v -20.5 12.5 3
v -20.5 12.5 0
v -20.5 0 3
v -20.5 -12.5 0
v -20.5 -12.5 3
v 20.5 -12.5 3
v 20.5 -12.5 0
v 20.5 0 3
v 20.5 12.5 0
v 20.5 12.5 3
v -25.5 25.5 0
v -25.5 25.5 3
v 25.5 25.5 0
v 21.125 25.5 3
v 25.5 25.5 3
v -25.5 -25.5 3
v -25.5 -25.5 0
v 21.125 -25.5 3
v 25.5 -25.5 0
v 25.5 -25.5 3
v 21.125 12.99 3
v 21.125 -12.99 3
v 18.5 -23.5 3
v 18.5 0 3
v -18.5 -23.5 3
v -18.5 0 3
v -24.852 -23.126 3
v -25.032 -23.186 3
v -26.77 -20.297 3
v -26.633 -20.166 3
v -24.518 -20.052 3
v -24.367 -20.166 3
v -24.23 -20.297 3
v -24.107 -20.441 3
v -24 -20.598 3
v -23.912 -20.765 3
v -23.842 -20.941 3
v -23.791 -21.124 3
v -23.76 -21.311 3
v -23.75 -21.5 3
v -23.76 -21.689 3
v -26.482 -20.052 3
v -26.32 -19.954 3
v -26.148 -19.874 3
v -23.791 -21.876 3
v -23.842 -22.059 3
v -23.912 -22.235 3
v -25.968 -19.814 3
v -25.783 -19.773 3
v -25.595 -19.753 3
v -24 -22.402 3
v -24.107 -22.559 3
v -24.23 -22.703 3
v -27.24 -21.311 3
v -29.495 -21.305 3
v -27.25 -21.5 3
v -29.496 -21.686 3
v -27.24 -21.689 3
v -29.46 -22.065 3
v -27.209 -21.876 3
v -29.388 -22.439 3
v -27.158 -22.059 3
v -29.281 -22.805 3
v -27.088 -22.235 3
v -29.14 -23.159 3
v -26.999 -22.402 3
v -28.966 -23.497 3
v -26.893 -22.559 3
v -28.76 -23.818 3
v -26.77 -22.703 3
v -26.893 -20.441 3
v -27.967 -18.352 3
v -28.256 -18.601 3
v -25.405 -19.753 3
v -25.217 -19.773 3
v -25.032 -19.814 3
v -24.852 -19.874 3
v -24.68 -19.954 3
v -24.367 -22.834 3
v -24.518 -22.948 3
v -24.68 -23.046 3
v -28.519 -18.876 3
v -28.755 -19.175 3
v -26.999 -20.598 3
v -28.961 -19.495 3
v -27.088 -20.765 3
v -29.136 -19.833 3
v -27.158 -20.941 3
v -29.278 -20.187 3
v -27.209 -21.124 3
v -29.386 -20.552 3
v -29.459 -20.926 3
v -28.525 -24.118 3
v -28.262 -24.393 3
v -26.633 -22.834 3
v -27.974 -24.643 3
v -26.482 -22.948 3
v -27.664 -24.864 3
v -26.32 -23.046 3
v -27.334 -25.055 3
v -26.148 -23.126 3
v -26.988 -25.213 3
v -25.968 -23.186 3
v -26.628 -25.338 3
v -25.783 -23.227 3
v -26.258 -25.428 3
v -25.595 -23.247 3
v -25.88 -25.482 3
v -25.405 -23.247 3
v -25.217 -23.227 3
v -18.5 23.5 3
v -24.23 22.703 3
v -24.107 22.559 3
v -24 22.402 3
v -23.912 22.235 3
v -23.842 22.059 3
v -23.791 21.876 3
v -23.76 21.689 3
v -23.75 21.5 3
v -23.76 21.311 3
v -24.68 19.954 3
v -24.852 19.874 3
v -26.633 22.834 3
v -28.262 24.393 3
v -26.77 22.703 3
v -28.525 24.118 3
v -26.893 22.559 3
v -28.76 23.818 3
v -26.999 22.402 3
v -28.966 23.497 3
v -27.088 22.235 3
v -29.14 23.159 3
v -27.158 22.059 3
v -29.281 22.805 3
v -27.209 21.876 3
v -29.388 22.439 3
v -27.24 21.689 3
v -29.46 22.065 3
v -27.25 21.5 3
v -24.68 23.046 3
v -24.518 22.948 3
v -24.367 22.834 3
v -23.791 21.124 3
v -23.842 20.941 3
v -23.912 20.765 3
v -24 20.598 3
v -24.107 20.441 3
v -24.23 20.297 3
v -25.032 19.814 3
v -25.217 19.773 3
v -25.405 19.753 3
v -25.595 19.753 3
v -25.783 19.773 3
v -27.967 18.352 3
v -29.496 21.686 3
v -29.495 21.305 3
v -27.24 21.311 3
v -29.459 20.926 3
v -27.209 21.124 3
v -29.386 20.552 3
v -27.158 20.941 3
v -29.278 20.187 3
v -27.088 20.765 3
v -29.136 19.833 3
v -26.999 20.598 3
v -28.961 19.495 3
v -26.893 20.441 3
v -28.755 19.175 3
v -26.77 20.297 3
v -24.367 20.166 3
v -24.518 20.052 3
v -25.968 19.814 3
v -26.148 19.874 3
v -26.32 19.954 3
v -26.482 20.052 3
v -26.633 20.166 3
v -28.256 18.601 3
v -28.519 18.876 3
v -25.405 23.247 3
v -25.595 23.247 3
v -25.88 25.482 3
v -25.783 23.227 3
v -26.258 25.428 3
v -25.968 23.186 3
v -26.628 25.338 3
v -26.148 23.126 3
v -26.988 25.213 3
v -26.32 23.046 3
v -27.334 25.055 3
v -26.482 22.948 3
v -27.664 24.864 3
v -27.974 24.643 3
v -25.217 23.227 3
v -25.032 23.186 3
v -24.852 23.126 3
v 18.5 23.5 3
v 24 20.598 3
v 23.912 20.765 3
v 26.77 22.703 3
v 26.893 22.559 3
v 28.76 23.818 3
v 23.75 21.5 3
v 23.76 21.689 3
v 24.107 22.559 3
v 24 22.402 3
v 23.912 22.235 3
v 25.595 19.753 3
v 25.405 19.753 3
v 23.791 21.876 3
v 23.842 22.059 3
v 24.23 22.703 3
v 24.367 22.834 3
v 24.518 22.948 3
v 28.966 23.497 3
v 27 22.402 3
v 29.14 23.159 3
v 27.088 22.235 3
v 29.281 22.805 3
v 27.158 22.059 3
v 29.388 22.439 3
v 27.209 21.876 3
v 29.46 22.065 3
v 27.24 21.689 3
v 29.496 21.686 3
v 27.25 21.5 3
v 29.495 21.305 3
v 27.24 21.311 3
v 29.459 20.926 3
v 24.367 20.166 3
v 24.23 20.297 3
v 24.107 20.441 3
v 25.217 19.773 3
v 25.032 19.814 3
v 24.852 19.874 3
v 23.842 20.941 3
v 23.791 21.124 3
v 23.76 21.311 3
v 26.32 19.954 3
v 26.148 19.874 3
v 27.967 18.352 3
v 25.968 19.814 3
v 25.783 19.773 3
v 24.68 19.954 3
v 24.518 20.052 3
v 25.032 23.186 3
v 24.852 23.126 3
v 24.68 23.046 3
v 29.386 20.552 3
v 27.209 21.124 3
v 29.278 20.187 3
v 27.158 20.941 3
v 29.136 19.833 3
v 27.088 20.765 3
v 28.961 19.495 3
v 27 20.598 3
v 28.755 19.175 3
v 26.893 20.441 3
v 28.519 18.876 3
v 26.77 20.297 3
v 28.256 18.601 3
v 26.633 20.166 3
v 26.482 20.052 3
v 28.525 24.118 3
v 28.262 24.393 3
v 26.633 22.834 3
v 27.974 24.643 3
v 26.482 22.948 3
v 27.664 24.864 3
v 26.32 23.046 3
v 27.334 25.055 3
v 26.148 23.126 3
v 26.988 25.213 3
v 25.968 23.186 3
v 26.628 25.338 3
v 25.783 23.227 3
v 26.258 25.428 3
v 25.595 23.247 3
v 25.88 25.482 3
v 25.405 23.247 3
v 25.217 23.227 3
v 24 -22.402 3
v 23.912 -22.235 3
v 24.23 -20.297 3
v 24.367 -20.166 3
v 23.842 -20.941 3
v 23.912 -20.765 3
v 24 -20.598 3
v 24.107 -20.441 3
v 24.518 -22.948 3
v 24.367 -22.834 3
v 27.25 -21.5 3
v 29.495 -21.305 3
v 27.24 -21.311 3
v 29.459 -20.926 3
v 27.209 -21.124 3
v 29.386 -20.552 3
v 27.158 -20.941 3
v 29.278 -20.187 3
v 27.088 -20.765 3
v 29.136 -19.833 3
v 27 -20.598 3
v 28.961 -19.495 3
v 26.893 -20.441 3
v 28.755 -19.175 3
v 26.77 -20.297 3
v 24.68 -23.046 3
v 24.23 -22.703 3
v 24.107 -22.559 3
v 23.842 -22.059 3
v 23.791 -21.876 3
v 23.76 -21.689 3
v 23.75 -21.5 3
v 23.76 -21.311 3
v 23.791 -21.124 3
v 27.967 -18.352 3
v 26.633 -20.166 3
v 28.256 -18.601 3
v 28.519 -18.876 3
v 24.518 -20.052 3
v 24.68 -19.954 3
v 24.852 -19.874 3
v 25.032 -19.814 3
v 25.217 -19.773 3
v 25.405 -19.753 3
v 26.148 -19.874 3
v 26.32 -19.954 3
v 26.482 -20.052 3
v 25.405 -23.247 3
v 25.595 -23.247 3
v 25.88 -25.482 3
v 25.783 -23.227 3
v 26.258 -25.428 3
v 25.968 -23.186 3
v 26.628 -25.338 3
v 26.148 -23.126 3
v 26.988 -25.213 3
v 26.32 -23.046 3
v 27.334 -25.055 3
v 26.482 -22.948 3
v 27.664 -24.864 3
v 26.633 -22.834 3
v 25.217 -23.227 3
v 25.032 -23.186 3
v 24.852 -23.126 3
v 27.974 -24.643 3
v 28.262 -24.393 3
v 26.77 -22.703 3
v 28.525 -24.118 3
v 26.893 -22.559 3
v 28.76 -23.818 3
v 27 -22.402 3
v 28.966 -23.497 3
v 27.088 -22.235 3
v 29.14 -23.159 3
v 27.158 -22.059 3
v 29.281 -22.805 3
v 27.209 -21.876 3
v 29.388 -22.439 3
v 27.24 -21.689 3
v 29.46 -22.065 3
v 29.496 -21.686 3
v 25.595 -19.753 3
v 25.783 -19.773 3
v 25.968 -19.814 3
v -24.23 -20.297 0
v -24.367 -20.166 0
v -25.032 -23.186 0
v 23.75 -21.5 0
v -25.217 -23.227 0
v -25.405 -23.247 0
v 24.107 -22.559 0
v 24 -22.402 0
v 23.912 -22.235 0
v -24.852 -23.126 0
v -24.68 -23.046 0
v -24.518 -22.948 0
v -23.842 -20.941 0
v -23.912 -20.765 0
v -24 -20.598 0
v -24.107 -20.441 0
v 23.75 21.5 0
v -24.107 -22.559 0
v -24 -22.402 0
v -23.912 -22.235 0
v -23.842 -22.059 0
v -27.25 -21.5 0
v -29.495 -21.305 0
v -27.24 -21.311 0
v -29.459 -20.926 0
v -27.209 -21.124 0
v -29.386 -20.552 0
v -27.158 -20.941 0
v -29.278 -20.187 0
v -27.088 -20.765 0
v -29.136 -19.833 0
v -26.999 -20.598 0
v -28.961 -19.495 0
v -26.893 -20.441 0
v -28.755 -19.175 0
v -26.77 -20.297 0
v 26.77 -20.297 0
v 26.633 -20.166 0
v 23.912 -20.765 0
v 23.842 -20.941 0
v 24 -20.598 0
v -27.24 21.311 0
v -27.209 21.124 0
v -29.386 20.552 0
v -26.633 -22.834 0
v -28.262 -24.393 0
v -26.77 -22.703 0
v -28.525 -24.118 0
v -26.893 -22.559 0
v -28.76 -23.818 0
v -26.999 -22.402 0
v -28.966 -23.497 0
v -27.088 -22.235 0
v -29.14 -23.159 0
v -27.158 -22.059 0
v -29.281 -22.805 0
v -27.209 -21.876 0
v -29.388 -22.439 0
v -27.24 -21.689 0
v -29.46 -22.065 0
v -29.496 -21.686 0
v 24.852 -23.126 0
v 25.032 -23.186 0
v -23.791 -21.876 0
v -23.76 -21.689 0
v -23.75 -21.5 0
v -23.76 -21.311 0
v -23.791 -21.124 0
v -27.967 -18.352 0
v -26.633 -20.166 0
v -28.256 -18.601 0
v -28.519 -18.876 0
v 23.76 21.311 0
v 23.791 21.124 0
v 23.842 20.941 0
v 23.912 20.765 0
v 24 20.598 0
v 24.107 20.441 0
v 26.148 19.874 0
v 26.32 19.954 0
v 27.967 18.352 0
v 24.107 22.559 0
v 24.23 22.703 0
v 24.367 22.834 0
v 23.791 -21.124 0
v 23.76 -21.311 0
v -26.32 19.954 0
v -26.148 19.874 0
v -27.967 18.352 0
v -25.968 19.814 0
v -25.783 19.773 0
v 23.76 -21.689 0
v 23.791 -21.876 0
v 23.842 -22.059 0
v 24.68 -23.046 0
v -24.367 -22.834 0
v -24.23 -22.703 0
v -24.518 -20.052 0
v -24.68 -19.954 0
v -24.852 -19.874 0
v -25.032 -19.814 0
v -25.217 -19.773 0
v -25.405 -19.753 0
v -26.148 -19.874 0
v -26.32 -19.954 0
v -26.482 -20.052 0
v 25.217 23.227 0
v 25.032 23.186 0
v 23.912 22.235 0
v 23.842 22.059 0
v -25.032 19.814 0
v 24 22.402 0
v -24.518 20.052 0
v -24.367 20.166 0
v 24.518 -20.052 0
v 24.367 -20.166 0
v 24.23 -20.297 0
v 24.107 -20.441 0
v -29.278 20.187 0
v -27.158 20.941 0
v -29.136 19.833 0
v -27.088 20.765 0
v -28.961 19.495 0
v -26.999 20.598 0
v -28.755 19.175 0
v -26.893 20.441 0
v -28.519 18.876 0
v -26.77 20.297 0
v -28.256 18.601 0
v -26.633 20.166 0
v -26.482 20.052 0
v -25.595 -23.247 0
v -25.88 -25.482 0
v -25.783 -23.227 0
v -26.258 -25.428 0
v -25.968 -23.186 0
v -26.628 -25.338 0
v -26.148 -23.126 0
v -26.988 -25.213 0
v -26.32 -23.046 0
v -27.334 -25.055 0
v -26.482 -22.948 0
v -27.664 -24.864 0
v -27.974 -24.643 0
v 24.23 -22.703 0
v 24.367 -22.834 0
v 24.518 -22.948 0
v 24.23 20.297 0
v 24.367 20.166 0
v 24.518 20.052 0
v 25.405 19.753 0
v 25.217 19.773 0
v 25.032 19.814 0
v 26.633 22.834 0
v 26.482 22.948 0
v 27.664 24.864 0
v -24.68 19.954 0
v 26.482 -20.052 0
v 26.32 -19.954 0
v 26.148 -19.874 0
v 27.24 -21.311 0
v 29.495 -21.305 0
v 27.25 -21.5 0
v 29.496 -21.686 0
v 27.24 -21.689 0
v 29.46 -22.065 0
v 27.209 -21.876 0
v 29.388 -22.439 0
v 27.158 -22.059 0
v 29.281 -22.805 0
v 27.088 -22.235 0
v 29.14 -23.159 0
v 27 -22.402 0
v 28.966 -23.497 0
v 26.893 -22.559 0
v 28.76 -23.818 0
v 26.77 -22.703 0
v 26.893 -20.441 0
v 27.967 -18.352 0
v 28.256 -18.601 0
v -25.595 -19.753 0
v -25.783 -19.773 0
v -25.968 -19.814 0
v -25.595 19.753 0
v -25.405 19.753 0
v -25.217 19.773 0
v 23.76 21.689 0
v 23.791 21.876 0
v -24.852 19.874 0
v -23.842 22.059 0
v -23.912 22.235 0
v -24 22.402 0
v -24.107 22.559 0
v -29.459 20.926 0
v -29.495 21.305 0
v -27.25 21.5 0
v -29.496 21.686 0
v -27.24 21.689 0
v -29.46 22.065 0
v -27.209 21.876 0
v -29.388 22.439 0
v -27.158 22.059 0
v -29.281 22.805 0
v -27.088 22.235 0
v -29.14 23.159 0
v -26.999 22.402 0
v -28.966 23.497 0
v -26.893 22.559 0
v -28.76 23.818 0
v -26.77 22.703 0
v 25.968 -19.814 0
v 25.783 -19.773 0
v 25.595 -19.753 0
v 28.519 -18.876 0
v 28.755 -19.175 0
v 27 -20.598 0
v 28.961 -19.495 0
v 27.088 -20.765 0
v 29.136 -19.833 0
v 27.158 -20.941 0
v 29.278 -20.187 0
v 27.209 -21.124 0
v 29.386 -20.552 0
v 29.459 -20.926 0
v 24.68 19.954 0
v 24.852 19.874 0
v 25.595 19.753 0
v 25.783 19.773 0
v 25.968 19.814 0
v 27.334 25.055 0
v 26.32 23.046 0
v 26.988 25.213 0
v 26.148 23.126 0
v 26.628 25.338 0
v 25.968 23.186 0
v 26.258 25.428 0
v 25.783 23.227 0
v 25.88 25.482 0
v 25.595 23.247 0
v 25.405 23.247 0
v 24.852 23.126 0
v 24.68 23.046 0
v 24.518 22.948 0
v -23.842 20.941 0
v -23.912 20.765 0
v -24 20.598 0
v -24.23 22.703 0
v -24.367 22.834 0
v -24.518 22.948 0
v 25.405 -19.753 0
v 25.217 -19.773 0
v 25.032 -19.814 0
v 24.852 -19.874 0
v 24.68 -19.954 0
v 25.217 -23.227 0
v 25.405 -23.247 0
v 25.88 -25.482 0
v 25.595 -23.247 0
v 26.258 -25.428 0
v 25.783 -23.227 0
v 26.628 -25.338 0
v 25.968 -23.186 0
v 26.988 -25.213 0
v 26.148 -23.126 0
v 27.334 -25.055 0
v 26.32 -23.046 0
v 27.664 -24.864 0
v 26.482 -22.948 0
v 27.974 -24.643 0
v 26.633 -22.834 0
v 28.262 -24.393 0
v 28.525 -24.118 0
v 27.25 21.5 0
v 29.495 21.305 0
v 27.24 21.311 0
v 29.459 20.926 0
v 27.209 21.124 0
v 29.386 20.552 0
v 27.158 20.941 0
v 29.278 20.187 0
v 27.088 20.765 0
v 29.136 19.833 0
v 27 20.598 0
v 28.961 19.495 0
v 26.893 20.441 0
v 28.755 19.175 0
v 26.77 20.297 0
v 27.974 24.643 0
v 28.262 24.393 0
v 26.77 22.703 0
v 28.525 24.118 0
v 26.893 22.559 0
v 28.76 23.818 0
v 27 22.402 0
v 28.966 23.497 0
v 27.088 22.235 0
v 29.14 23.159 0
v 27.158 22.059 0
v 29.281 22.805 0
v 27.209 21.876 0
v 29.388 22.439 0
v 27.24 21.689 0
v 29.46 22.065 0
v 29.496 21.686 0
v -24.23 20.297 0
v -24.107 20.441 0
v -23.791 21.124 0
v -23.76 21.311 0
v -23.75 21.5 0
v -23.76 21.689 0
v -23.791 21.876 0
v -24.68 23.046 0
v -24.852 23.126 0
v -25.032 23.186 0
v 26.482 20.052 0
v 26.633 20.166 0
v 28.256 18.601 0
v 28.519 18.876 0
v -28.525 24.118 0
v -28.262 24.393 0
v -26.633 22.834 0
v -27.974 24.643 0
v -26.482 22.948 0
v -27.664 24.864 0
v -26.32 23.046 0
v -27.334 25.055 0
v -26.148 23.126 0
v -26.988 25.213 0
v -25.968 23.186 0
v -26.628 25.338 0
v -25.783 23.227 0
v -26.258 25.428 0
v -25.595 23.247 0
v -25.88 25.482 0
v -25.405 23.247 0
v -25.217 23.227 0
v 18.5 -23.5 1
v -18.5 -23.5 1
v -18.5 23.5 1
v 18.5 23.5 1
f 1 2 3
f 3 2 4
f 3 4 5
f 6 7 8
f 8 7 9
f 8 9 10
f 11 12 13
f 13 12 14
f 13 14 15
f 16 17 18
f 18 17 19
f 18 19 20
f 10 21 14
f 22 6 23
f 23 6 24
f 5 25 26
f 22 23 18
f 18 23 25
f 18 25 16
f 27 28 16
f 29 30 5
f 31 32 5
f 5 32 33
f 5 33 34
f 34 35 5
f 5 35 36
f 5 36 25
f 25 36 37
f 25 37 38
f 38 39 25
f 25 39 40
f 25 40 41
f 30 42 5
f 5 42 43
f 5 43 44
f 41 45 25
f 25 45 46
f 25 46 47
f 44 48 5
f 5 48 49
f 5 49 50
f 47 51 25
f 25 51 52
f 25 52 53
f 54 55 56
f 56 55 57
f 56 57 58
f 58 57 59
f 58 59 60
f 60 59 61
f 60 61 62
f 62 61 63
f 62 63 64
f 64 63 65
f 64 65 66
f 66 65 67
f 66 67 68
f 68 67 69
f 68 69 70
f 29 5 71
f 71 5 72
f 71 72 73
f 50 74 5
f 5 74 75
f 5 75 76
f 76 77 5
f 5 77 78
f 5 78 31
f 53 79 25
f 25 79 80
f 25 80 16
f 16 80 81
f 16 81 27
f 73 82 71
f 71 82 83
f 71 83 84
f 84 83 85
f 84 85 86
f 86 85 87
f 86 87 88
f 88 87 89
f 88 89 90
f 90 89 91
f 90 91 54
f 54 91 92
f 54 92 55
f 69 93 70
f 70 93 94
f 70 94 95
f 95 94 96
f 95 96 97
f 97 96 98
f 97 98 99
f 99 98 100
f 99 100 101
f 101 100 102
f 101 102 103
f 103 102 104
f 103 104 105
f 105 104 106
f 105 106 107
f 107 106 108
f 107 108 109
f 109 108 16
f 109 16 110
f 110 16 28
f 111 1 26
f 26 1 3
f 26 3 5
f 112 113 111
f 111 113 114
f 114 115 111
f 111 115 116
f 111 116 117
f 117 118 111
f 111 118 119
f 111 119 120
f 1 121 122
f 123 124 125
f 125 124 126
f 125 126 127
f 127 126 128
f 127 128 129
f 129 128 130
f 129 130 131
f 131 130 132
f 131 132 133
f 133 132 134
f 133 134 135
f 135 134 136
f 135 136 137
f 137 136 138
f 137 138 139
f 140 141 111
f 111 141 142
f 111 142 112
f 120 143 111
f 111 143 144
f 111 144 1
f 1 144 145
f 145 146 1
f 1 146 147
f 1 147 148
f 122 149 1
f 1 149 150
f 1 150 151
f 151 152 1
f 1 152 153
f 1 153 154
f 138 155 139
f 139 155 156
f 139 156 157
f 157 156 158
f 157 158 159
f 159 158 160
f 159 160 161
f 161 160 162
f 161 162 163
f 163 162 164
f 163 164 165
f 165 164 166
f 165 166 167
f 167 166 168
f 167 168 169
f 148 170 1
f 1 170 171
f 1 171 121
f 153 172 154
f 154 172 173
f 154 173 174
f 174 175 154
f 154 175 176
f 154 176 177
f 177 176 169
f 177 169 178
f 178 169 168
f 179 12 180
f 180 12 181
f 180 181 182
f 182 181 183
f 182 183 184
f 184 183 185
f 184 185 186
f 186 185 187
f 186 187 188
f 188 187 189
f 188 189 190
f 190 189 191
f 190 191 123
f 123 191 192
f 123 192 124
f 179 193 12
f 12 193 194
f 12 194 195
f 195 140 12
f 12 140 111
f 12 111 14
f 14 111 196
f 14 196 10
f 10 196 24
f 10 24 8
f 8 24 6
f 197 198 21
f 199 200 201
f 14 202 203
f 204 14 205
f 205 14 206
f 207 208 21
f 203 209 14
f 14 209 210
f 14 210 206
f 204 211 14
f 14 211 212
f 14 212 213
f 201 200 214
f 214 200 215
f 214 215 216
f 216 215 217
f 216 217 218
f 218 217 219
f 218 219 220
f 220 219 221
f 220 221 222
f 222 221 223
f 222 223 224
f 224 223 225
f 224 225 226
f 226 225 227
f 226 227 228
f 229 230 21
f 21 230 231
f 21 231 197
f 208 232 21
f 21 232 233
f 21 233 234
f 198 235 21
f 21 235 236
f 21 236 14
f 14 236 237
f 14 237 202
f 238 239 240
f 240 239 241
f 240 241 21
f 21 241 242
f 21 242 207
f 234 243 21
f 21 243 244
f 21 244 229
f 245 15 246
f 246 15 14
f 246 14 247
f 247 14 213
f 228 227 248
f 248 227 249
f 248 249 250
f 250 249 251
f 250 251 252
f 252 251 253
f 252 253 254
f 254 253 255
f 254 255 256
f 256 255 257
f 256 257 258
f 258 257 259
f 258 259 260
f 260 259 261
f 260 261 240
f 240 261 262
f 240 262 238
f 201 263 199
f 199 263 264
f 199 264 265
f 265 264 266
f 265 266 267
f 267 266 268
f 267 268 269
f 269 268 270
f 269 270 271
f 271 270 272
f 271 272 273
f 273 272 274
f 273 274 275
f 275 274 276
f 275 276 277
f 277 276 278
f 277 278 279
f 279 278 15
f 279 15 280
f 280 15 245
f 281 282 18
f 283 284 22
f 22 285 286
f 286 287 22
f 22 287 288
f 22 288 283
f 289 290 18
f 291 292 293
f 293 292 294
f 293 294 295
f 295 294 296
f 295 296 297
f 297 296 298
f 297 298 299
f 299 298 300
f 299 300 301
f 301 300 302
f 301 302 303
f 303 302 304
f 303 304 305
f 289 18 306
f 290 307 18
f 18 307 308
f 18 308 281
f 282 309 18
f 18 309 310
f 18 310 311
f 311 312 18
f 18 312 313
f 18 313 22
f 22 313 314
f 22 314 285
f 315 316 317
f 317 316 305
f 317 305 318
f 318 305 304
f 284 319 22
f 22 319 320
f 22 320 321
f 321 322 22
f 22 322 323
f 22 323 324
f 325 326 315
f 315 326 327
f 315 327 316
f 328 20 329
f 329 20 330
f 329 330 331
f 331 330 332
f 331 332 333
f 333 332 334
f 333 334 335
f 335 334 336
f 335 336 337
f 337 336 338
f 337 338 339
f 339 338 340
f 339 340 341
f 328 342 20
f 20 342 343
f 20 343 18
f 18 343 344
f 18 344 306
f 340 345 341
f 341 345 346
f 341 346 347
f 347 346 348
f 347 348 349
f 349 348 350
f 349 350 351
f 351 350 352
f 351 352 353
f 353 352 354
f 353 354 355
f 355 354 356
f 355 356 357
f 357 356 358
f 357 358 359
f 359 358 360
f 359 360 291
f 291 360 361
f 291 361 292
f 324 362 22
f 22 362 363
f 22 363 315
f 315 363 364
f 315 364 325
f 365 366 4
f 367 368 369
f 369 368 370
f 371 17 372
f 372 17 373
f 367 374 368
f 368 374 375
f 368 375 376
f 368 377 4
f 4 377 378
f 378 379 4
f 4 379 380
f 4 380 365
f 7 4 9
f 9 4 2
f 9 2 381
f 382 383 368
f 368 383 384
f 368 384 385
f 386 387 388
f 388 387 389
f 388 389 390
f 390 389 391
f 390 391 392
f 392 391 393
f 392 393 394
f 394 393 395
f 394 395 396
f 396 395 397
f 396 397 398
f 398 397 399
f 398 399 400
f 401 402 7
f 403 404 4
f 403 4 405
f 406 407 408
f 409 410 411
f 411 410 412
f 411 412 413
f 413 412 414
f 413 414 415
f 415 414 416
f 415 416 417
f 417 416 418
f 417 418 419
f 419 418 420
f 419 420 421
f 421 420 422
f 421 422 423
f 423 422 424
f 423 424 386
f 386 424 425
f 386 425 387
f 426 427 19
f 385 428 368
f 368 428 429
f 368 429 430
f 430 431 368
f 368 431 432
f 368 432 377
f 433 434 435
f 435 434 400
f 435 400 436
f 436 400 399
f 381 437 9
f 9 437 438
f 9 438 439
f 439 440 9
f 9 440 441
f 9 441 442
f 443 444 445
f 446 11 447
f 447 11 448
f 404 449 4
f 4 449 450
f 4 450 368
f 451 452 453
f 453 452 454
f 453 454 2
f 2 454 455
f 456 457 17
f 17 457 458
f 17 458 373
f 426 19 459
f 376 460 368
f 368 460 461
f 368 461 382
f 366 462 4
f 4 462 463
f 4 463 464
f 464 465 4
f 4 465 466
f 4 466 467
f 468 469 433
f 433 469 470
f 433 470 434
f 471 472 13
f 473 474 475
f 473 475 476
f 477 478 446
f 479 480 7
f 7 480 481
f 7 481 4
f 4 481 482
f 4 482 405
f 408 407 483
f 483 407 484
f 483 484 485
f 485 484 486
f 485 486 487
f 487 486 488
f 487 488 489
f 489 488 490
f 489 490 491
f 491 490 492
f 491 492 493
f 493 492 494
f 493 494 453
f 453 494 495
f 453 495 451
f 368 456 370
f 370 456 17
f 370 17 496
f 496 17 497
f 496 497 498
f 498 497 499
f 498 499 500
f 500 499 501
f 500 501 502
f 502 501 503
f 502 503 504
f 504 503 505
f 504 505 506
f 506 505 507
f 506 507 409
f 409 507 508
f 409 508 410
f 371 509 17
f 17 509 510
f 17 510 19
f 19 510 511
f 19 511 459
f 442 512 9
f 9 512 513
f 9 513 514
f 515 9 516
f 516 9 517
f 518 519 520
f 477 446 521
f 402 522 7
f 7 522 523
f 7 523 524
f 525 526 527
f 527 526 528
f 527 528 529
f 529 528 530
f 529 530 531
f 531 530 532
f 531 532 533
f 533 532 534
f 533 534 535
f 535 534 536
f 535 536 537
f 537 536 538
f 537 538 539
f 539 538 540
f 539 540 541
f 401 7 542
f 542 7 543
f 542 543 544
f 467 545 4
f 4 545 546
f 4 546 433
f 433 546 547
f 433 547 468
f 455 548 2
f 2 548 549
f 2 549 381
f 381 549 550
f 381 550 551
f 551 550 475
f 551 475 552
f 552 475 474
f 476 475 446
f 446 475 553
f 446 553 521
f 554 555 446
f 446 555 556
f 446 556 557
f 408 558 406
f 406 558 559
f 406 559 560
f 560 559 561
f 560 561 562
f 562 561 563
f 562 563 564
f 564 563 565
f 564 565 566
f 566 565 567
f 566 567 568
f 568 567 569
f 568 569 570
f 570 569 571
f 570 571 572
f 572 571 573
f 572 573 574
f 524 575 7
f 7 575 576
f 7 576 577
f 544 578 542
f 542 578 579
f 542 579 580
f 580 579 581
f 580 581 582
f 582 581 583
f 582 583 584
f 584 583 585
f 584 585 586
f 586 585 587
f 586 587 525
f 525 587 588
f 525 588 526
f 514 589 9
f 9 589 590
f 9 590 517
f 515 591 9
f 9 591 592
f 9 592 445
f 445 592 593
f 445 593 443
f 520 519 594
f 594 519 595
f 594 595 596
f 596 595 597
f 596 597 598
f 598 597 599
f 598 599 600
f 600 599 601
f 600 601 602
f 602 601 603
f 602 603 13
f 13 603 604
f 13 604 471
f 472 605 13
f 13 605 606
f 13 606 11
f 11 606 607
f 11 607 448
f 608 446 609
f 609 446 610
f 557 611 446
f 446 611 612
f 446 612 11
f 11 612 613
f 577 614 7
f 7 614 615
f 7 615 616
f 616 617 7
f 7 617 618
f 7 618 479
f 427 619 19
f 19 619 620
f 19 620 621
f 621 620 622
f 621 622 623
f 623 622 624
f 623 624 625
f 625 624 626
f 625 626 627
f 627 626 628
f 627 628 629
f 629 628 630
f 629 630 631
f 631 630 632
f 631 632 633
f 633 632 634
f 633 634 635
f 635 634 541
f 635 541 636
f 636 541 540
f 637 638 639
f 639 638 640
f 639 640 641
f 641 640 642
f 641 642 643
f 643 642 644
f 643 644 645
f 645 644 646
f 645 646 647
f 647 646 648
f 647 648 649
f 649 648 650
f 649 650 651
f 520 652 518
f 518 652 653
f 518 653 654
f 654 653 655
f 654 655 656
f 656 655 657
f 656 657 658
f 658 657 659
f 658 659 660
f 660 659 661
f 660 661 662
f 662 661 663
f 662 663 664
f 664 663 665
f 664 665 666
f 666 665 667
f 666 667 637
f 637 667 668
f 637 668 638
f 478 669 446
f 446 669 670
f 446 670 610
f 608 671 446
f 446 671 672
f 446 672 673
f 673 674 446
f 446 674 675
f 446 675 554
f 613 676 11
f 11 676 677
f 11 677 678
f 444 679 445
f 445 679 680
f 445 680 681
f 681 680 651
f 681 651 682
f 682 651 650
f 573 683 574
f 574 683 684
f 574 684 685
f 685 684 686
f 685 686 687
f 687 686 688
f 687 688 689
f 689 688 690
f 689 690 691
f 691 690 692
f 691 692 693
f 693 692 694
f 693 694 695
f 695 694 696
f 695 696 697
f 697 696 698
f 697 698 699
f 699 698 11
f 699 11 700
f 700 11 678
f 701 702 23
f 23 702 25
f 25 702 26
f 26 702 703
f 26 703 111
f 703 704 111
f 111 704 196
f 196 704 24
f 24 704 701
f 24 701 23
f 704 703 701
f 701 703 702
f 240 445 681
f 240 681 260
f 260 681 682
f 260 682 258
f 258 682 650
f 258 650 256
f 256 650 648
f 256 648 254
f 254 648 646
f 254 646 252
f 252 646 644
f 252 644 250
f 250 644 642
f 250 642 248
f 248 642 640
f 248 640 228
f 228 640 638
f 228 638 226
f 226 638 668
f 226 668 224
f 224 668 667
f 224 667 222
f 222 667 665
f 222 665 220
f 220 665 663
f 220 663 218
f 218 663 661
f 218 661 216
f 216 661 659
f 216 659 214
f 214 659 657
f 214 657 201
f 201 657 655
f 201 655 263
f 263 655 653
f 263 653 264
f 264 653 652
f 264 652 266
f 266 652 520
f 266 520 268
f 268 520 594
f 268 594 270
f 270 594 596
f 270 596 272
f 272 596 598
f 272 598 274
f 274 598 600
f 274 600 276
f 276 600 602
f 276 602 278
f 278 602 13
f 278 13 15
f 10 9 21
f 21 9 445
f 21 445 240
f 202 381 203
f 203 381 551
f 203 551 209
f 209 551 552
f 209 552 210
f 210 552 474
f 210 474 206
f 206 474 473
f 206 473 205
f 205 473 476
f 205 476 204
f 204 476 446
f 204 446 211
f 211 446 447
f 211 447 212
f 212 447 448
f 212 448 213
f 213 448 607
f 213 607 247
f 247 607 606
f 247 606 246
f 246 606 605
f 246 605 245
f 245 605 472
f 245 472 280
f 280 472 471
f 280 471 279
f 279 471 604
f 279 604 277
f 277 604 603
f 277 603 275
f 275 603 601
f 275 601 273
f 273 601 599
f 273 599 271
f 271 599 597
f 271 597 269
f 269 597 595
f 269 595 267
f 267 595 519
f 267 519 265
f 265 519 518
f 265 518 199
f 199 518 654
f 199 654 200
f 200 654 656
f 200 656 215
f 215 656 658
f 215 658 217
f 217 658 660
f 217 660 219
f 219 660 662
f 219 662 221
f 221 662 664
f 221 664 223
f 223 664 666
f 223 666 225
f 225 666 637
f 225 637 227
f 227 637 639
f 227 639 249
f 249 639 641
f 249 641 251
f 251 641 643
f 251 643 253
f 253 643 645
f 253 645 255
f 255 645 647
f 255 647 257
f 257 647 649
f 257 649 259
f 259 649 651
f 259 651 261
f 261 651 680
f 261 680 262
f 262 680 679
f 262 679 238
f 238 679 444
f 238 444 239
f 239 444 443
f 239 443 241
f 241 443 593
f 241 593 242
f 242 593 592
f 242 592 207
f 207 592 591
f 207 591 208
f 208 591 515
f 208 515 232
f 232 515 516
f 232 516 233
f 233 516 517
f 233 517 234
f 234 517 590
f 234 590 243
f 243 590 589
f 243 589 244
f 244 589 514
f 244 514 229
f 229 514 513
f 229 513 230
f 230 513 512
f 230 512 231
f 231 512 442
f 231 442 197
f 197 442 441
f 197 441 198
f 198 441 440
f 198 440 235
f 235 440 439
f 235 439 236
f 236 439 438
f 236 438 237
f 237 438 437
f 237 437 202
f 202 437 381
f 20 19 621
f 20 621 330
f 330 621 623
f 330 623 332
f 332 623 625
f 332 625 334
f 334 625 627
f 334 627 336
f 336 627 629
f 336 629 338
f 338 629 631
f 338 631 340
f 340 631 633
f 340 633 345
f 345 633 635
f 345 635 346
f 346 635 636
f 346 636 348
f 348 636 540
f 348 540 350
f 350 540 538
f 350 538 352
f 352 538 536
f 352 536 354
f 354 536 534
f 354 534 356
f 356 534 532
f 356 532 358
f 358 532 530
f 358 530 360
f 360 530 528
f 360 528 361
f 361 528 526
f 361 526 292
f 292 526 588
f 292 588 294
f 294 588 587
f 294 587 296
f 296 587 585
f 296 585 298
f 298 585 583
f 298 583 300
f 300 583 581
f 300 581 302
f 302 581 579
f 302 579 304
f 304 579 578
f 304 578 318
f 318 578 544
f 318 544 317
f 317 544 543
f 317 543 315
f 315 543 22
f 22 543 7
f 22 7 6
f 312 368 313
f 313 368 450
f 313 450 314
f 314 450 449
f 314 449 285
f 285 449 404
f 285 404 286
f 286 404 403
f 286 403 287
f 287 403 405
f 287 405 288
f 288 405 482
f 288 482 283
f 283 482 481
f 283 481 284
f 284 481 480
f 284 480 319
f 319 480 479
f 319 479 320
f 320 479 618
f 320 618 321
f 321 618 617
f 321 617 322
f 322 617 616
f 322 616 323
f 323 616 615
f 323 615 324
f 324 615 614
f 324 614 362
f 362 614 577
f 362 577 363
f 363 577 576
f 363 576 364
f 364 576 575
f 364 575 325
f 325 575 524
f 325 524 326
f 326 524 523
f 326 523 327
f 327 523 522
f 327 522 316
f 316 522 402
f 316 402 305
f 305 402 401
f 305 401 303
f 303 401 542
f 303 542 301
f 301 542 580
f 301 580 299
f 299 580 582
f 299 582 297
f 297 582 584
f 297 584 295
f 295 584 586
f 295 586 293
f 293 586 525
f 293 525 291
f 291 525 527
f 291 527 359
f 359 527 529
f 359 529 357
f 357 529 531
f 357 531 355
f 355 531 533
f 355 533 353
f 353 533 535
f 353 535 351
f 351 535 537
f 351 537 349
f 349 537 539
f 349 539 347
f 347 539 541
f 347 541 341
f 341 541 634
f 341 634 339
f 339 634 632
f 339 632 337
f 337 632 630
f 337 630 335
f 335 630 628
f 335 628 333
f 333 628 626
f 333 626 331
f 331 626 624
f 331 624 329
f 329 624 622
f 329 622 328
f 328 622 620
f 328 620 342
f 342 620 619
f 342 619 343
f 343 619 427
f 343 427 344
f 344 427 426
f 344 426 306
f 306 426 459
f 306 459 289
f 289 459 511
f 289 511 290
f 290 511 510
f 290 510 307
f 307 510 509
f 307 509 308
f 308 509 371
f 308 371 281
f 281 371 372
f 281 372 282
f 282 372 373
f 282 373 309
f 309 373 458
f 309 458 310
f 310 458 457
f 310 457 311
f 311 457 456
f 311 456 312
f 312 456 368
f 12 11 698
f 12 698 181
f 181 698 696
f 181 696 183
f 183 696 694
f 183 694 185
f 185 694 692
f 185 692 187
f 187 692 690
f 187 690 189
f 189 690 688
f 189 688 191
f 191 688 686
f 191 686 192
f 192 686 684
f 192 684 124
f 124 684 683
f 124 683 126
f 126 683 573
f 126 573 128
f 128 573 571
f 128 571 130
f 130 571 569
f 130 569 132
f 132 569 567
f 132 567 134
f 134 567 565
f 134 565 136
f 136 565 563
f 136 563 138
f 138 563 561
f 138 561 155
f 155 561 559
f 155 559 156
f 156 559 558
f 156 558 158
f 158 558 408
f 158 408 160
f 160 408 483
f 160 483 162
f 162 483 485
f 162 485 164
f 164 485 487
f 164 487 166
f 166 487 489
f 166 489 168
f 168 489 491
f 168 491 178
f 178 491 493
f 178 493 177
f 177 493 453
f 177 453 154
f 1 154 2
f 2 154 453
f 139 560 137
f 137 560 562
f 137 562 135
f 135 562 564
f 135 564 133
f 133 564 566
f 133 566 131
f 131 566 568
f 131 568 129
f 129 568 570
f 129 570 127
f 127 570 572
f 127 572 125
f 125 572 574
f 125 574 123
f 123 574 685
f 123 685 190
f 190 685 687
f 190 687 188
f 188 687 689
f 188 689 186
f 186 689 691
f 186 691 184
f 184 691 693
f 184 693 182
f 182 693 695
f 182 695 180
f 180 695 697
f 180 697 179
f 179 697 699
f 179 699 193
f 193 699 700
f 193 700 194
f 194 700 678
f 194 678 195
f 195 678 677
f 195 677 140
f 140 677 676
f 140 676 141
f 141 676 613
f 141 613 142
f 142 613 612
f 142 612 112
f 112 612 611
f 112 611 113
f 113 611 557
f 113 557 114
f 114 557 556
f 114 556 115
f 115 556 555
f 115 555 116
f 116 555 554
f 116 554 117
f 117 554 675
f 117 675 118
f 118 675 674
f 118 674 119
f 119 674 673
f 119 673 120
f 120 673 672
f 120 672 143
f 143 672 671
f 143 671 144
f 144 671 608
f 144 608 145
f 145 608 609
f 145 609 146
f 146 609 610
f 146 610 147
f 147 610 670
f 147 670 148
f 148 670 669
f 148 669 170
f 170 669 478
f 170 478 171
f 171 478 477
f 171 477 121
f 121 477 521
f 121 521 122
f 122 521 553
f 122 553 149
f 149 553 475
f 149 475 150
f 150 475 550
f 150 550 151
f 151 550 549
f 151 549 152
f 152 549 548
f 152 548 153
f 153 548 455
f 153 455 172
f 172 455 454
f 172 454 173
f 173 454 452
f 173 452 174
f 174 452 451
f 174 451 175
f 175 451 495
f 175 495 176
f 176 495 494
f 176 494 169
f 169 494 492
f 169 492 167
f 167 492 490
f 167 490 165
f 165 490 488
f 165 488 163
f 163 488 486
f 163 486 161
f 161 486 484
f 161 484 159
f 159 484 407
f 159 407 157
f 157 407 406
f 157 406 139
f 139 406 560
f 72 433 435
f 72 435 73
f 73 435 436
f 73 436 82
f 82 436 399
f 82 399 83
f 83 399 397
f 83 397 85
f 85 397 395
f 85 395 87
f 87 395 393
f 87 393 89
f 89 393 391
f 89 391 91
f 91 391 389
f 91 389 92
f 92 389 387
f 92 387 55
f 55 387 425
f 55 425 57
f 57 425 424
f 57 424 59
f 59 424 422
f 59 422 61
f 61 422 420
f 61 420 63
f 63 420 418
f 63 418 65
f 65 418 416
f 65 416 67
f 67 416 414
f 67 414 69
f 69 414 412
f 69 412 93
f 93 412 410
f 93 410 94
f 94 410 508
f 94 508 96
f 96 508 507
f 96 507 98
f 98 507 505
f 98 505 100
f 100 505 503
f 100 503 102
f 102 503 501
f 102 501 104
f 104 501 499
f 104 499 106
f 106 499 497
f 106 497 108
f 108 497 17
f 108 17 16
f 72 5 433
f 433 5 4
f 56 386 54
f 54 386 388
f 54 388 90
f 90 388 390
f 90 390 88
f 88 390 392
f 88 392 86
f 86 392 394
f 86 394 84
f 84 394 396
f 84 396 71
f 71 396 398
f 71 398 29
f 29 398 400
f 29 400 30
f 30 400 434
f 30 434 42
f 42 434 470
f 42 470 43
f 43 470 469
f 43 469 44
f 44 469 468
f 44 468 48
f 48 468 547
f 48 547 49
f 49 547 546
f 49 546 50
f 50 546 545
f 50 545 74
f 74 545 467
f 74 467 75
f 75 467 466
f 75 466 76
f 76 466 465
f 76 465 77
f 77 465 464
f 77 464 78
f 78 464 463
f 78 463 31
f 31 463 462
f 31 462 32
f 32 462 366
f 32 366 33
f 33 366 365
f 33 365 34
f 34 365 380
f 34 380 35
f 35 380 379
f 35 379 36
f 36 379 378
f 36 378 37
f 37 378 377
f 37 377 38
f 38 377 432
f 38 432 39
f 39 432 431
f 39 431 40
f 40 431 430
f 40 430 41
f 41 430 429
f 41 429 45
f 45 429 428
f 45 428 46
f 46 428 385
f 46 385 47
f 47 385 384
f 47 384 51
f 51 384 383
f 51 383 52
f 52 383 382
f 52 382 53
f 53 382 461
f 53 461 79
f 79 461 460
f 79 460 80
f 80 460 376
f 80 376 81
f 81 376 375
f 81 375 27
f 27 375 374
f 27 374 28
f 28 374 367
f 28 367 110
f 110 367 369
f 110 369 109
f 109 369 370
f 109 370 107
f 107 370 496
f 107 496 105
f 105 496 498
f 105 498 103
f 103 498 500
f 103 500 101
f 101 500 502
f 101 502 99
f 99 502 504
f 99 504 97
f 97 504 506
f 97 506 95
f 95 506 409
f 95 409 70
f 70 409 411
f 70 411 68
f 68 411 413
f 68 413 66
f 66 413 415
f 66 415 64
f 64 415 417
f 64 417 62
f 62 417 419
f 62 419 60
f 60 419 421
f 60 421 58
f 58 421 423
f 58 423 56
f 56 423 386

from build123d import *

# Parameters (mm, degrees)
SKETCH1_W                                  = 41
SKETCH1_H                                  = 51
BOSS_EXTRUDE1_DEPTH                        = 3
SKETCH2_W                                  = 37
SKETCH2_H                                  = 47
CUT_EXTRUDE1_DEPTH                         = 2
SKETCH4_R                                  = 1.75
BOSS_EXTRUDE2_DEPTH                        = 3
MIRROR1_AT_THE_SECOND_PLANE_COPY_1_SKETC_R = 1.75
MIRROR1_AT_THE_SECOND_PLANE_COPY_1_DEPTH   = 3


with BuildPart() as part:
    # Sketch1 → Boss-Extrude1 (new body)
    with BuildSketch(Plane.XY):
        Rectangle(SKETCH1_W, SKETCH1_H)
    extrude(amount=BOSS_EXTRUDE1_DEPTH)

    # Sketch2 → Cut-Extrude1 (cut)
    with BuildSketch(Plane.XY.offset(3)):
        Rectangle(SKETCH2_W, SKETCH2_H)
    extrude(amount=-CUT_EXTRUDE1_DEPTH, mode=Mode.SUBTRACT)

    # Sketch4 → Boss-Extrude2 (add)
    with BuildSketch(Plane.XY):
        with BuildLine():
            Line((25.5, 25.5), (20.5, 25.5))
            Line((20.5, 25.5), (20.5, 12.5))
            Line((20.5, 12.5), (27.967226295, 18.351540947))
            ThreePointArc((27.967226295, 18.351540947), (29.281126566, 22.805021798), (25.5, 25.5))
        make_face()
        with Locations((25.5, 21.5)):
            Circle(SKETCH4_R, mode=Mode.SUBTRACT)
    boss_extrude2 = extrude(amount=BOSS_EXTRUDE2_DEPTH)

    # Mirror1: Boss-Extrude2 across plane
    add(boss_extrude2.mirror(Plane(origin=(0, 0, 0), x_dir=(0, 0, 1), z_dir=(1, 0, 0))))

    # Mirror1 at the second plane: Boss-Extrude2 across plane
    add(boss_extrude2.mirror(Plane.ZX))

    # Mirror1 at the second plane copy 1 sketc → Mirror1 at the second plane copy 1 (add)
    with BuildSketch(Plane(origin=(0, 0, 0), x_dir=(-1, 0, 0), z_dir=(0, 0, 1))):
        with BuildLine():
            Line((25.5, 25.5), (20.5, 25.5))
            Line((20.5, 25.5), (20.5, 12.5))
            Line((20.5, 12.5), (27.967226295, 18.351540947))
            ThreePointArc((27.967226295, 18.351540947), (29.281126566, 22.805021798), (25.5, 25.5))
        make_face()
        with Locations((25.5, 21.5)):
            Circle(MIRROR1_AT_THE_SECOND_PLANE_COPY_1_SKETC_R, mode=Mode.SUBTRACT)
    extrude(amount=MIRROR1_AT_THE_SECOND_PLANE_COPY_1_DEPTH)


solid = part.part
